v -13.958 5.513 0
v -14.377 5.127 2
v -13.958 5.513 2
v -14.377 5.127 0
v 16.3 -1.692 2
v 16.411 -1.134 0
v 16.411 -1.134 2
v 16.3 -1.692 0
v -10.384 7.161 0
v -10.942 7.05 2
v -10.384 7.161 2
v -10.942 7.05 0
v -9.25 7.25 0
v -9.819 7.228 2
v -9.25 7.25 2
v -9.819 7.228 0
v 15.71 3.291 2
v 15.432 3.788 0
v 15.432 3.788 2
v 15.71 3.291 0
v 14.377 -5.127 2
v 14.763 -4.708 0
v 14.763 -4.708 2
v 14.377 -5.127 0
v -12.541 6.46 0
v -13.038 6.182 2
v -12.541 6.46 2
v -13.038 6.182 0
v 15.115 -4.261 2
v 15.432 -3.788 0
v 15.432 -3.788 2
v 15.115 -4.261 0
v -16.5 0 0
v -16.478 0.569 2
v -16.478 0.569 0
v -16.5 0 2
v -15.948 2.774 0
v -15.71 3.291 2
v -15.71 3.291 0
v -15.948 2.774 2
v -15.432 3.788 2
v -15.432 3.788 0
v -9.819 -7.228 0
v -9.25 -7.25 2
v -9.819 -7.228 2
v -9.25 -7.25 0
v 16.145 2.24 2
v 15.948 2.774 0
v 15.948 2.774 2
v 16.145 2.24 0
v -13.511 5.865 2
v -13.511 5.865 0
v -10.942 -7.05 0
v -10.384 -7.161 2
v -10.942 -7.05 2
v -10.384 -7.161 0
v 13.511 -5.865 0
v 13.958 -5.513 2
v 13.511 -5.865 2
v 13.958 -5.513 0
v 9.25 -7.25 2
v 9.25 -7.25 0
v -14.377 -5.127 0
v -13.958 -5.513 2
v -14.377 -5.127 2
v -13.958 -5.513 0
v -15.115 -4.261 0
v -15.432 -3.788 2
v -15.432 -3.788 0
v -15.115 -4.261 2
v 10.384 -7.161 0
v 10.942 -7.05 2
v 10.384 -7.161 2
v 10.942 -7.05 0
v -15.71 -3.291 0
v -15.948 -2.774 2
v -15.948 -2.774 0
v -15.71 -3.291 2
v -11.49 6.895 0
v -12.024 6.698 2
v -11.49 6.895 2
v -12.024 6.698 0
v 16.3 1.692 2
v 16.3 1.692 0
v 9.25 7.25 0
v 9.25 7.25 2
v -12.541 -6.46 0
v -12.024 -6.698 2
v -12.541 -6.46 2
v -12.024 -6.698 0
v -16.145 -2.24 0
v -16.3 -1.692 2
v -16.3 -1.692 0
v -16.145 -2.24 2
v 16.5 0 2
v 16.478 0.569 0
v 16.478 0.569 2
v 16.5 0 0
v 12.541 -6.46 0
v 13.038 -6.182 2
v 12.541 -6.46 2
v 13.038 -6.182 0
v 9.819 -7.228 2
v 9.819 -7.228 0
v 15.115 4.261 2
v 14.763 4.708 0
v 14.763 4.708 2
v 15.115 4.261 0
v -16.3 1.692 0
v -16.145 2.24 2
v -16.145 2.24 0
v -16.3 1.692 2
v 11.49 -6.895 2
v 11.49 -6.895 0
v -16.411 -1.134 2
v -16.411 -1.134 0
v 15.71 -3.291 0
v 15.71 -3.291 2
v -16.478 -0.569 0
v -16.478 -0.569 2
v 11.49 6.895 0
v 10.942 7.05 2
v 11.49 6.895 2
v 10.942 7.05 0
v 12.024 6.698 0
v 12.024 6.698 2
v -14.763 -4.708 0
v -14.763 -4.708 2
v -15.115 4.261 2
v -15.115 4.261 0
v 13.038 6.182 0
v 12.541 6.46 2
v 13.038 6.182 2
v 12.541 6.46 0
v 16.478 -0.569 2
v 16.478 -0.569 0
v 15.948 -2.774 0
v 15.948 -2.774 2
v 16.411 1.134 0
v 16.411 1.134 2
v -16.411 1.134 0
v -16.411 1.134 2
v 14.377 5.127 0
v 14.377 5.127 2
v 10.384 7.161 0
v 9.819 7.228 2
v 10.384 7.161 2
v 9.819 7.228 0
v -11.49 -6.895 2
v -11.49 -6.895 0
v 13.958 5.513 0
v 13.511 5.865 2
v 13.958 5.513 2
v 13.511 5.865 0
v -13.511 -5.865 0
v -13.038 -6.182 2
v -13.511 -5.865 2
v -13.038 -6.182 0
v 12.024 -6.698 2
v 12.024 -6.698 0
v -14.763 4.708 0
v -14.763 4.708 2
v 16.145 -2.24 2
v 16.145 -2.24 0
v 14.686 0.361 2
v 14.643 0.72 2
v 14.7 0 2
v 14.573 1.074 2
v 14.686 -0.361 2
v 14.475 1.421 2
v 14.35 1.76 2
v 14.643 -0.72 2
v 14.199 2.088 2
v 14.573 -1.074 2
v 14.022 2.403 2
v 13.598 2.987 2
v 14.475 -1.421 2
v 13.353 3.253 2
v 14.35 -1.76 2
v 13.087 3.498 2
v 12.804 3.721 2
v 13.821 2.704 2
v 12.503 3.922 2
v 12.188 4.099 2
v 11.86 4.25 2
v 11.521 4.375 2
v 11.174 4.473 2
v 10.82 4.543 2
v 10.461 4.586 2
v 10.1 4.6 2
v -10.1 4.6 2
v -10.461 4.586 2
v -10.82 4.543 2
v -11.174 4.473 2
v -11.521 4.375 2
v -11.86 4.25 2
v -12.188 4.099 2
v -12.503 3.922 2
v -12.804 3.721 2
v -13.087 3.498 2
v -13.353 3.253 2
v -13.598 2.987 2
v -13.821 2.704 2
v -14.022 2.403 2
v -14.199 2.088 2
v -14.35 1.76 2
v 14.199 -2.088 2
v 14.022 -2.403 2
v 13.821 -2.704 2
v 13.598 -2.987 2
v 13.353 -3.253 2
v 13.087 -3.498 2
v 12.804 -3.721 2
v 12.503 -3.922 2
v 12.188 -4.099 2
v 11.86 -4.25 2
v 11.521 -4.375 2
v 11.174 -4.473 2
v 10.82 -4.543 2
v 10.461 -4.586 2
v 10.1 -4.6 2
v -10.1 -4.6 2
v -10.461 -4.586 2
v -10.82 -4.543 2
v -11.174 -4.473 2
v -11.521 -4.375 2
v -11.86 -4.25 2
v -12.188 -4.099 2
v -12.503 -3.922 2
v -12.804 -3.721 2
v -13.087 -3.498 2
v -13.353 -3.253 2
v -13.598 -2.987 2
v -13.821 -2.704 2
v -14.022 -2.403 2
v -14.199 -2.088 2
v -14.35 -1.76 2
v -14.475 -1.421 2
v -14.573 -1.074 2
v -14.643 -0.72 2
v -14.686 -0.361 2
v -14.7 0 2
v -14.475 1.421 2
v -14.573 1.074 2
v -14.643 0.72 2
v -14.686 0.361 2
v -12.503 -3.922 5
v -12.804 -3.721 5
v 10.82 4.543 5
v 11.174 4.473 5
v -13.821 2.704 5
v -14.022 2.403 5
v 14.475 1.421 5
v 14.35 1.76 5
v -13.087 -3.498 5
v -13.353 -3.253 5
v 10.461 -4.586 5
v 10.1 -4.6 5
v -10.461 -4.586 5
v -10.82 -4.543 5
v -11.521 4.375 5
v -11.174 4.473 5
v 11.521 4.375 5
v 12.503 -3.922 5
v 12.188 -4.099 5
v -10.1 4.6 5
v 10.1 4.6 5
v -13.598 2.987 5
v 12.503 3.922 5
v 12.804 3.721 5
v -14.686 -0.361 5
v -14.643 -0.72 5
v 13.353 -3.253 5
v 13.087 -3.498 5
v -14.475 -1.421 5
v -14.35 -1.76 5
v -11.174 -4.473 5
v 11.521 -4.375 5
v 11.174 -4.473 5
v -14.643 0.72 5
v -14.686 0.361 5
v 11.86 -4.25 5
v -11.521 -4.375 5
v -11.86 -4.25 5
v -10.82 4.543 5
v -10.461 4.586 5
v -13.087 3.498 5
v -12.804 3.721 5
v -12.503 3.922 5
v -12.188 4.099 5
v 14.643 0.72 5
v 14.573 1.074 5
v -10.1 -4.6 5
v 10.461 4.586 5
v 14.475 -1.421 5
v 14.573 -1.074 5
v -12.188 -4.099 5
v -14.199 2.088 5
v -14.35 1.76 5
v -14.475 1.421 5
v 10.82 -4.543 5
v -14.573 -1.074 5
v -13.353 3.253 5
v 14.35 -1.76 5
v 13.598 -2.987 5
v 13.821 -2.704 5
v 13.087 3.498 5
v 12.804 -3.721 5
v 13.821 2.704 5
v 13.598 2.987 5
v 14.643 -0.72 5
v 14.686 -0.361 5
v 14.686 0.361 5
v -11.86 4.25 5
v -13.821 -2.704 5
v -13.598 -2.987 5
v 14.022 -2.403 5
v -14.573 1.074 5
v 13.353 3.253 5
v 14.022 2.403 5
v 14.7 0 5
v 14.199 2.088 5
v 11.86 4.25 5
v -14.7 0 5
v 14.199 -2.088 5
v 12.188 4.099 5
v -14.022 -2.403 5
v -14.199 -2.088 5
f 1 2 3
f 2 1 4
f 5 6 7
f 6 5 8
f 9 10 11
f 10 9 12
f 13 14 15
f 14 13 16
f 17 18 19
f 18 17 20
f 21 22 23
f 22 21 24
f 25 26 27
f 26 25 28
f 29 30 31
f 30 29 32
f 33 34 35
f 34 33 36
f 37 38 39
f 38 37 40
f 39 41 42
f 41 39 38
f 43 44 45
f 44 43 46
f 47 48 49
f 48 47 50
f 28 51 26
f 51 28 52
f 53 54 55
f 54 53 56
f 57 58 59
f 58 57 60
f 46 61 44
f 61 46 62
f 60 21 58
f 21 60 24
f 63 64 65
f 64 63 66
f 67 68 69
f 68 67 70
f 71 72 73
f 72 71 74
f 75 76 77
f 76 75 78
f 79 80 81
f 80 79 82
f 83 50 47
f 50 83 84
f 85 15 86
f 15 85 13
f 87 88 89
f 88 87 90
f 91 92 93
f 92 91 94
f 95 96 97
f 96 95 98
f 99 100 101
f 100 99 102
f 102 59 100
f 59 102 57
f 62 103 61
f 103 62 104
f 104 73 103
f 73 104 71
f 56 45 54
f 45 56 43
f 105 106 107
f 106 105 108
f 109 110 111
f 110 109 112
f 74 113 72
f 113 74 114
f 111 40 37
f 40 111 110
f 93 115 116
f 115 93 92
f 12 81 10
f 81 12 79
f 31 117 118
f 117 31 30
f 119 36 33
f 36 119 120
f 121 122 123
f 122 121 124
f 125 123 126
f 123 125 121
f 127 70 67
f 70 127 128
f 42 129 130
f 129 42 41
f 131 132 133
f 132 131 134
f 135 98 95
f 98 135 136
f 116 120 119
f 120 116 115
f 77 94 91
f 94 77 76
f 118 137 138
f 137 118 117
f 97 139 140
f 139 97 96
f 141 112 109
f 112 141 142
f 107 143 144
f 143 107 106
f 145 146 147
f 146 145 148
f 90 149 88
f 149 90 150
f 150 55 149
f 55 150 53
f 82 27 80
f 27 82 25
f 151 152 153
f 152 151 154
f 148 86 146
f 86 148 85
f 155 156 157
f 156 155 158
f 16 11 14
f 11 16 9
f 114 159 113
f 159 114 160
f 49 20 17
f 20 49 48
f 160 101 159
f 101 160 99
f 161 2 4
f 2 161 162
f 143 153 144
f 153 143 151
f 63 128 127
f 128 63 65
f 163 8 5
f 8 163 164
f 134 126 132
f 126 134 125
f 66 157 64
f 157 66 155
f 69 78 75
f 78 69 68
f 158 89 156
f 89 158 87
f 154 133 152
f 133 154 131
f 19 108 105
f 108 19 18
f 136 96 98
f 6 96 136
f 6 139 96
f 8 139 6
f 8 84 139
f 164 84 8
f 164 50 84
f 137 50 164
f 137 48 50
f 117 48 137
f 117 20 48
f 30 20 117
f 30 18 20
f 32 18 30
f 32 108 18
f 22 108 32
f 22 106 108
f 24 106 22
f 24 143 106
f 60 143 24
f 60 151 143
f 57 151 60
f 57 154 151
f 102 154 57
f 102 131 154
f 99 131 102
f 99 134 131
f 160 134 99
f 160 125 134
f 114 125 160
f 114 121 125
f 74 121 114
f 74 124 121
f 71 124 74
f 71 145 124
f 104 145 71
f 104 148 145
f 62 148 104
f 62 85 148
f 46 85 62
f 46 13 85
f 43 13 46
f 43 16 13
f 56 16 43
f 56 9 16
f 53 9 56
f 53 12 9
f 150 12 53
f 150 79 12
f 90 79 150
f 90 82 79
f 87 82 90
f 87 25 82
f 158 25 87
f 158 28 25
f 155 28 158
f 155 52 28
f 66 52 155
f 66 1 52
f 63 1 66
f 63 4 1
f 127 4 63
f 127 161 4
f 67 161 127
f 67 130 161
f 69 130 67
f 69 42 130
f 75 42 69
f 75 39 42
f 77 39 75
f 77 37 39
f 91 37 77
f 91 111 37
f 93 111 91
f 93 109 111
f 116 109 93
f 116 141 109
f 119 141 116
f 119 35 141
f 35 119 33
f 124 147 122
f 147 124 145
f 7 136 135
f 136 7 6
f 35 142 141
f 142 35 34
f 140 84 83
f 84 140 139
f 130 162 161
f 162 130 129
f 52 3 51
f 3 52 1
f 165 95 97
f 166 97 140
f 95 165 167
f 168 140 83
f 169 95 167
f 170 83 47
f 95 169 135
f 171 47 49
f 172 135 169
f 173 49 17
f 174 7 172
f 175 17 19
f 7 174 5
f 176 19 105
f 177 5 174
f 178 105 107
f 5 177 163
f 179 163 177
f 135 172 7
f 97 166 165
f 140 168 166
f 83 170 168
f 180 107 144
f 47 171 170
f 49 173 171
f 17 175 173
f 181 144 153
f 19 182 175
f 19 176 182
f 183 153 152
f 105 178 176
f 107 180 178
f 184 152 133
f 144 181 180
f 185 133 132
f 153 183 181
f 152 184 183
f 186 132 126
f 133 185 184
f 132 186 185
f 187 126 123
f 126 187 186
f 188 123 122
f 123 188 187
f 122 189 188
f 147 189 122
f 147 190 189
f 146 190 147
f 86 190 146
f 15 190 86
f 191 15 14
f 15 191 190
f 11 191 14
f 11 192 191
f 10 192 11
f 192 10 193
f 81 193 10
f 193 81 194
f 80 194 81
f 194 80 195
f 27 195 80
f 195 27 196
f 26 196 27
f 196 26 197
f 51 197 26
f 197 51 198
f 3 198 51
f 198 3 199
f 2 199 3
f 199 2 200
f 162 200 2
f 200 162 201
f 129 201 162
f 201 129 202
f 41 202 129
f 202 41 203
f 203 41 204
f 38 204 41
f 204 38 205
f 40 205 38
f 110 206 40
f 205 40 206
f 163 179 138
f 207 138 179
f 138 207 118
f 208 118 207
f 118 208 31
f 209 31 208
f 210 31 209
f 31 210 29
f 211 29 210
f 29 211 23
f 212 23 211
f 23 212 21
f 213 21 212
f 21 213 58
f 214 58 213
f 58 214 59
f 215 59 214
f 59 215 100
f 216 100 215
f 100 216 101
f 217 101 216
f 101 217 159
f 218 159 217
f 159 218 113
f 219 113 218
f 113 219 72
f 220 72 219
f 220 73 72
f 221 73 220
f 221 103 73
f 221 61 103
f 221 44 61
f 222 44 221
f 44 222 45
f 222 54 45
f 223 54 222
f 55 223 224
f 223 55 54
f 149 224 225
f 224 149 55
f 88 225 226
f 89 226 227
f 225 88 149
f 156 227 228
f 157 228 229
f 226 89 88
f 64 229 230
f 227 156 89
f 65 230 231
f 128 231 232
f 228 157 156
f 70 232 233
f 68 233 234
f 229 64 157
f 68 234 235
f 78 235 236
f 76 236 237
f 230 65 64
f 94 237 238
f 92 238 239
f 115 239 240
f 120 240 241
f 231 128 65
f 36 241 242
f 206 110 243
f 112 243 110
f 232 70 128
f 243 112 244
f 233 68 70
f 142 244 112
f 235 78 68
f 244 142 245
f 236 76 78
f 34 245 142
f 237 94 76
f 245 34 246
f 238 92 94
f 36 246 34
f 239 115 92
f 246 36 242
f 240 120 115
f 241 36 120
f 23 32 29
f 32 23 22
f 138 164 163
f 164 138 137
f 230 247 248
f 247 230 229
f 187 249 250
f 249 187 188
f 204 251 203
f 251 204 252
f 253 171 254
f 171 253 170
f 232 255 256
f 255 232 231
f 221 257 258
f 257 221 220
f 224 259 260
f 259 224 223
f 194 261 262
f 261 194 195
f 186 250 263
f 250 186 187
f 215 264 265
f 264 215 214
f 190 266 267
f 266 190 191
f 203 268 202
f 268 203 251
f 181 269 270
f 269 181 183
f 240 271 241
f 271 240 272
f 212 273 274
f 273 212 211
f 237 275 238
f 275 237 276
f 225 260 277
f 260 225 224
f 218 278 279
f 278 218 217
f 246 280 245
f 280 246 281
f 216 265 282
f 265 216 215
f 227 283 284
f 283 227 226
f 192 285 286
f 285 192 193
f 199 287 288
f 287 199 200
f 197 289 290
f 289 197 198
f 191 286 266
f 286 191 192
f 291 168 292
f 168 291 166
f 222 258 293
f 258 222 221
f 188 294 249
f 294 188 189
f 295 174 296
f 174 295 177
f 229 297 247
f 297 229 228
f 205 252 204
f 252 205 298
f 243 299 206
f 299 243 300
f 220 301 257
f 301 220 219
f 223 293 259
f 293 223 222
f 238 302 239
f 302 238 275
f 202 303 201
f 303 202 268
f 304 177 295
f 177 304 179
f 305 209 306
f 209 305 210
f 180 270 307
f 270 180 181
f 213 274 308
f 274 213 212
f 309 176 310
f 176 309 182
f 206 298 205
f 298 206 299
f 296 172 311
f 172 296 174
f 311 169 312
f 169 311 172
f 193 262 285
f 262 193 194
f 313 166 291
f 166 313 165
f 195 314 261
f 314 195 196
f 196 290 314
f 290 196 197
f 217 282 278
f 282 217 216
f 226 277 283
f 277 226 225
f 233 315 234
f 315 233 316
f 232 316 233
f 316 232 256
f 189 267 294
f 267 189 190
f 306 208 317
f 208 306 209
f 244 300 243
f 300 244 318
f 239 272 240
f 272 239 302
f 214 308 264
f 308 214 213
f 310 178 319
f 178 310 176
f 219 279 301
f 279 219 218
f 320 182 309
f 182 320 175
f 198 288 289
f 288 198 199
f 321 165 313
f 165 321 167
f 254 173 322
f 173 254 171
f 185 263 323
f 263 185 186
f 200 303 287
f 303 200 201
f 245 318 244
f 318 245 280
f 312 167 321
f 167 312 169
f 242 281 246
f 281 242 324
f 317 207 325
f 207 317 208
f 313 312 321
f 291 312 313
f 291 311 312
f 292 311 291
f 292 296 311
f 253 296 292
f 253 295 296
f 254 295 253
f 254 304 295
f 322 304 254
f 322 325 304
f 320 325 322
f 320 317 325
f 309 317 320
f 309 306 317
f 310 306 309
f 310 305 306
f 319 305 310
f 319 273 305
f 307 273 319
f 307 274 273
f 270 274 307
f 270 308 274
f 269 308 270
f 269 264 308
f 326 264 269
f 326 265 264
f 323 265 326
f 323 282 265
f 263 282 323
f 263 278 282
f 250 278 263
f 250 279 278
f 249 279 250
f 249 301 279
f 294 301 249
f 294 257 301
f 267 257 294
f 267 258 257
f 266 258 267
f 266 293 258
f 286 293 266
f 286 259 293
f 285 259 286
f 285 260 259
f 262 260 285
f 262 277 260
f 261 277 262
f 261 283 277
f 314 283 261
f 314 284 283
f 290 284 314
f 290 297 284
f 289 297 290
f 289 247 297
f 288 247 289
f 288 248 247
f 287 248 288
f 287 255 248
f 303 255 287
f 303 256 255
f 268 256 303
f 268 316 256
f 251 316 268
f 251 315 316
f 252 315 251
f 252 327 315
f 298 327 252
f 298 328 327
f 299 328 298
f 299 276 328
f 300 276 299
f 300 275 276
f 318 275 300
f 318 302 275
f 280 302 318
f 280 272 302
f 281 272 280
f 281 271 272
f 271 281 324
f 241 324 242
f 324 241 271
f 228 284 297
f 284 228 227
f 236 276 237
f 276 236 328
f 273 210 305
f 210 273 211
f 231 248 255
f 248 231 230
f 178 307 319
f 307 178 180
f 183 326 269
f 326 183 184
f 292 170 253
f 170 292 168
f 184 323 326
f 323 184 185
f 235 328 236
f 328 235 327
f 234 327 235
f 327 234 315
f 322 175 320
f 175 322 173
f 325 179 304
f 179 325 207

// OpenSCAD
$fn = 80;

lozenge(33, 14.5, 2.0);
translate( [0, 0, 2.0] )
    lozenge(29.4, 9.2, 3);



module lozenge(length, width, height)
{
    hull()
    {
        translate( [-(length-width)/2, 0, 0] )
            cylinder(d=width, h=height);
        translate( [(length-width)/2, 0, 0] )
            cylinder(d=width, h=height);
    }
}
